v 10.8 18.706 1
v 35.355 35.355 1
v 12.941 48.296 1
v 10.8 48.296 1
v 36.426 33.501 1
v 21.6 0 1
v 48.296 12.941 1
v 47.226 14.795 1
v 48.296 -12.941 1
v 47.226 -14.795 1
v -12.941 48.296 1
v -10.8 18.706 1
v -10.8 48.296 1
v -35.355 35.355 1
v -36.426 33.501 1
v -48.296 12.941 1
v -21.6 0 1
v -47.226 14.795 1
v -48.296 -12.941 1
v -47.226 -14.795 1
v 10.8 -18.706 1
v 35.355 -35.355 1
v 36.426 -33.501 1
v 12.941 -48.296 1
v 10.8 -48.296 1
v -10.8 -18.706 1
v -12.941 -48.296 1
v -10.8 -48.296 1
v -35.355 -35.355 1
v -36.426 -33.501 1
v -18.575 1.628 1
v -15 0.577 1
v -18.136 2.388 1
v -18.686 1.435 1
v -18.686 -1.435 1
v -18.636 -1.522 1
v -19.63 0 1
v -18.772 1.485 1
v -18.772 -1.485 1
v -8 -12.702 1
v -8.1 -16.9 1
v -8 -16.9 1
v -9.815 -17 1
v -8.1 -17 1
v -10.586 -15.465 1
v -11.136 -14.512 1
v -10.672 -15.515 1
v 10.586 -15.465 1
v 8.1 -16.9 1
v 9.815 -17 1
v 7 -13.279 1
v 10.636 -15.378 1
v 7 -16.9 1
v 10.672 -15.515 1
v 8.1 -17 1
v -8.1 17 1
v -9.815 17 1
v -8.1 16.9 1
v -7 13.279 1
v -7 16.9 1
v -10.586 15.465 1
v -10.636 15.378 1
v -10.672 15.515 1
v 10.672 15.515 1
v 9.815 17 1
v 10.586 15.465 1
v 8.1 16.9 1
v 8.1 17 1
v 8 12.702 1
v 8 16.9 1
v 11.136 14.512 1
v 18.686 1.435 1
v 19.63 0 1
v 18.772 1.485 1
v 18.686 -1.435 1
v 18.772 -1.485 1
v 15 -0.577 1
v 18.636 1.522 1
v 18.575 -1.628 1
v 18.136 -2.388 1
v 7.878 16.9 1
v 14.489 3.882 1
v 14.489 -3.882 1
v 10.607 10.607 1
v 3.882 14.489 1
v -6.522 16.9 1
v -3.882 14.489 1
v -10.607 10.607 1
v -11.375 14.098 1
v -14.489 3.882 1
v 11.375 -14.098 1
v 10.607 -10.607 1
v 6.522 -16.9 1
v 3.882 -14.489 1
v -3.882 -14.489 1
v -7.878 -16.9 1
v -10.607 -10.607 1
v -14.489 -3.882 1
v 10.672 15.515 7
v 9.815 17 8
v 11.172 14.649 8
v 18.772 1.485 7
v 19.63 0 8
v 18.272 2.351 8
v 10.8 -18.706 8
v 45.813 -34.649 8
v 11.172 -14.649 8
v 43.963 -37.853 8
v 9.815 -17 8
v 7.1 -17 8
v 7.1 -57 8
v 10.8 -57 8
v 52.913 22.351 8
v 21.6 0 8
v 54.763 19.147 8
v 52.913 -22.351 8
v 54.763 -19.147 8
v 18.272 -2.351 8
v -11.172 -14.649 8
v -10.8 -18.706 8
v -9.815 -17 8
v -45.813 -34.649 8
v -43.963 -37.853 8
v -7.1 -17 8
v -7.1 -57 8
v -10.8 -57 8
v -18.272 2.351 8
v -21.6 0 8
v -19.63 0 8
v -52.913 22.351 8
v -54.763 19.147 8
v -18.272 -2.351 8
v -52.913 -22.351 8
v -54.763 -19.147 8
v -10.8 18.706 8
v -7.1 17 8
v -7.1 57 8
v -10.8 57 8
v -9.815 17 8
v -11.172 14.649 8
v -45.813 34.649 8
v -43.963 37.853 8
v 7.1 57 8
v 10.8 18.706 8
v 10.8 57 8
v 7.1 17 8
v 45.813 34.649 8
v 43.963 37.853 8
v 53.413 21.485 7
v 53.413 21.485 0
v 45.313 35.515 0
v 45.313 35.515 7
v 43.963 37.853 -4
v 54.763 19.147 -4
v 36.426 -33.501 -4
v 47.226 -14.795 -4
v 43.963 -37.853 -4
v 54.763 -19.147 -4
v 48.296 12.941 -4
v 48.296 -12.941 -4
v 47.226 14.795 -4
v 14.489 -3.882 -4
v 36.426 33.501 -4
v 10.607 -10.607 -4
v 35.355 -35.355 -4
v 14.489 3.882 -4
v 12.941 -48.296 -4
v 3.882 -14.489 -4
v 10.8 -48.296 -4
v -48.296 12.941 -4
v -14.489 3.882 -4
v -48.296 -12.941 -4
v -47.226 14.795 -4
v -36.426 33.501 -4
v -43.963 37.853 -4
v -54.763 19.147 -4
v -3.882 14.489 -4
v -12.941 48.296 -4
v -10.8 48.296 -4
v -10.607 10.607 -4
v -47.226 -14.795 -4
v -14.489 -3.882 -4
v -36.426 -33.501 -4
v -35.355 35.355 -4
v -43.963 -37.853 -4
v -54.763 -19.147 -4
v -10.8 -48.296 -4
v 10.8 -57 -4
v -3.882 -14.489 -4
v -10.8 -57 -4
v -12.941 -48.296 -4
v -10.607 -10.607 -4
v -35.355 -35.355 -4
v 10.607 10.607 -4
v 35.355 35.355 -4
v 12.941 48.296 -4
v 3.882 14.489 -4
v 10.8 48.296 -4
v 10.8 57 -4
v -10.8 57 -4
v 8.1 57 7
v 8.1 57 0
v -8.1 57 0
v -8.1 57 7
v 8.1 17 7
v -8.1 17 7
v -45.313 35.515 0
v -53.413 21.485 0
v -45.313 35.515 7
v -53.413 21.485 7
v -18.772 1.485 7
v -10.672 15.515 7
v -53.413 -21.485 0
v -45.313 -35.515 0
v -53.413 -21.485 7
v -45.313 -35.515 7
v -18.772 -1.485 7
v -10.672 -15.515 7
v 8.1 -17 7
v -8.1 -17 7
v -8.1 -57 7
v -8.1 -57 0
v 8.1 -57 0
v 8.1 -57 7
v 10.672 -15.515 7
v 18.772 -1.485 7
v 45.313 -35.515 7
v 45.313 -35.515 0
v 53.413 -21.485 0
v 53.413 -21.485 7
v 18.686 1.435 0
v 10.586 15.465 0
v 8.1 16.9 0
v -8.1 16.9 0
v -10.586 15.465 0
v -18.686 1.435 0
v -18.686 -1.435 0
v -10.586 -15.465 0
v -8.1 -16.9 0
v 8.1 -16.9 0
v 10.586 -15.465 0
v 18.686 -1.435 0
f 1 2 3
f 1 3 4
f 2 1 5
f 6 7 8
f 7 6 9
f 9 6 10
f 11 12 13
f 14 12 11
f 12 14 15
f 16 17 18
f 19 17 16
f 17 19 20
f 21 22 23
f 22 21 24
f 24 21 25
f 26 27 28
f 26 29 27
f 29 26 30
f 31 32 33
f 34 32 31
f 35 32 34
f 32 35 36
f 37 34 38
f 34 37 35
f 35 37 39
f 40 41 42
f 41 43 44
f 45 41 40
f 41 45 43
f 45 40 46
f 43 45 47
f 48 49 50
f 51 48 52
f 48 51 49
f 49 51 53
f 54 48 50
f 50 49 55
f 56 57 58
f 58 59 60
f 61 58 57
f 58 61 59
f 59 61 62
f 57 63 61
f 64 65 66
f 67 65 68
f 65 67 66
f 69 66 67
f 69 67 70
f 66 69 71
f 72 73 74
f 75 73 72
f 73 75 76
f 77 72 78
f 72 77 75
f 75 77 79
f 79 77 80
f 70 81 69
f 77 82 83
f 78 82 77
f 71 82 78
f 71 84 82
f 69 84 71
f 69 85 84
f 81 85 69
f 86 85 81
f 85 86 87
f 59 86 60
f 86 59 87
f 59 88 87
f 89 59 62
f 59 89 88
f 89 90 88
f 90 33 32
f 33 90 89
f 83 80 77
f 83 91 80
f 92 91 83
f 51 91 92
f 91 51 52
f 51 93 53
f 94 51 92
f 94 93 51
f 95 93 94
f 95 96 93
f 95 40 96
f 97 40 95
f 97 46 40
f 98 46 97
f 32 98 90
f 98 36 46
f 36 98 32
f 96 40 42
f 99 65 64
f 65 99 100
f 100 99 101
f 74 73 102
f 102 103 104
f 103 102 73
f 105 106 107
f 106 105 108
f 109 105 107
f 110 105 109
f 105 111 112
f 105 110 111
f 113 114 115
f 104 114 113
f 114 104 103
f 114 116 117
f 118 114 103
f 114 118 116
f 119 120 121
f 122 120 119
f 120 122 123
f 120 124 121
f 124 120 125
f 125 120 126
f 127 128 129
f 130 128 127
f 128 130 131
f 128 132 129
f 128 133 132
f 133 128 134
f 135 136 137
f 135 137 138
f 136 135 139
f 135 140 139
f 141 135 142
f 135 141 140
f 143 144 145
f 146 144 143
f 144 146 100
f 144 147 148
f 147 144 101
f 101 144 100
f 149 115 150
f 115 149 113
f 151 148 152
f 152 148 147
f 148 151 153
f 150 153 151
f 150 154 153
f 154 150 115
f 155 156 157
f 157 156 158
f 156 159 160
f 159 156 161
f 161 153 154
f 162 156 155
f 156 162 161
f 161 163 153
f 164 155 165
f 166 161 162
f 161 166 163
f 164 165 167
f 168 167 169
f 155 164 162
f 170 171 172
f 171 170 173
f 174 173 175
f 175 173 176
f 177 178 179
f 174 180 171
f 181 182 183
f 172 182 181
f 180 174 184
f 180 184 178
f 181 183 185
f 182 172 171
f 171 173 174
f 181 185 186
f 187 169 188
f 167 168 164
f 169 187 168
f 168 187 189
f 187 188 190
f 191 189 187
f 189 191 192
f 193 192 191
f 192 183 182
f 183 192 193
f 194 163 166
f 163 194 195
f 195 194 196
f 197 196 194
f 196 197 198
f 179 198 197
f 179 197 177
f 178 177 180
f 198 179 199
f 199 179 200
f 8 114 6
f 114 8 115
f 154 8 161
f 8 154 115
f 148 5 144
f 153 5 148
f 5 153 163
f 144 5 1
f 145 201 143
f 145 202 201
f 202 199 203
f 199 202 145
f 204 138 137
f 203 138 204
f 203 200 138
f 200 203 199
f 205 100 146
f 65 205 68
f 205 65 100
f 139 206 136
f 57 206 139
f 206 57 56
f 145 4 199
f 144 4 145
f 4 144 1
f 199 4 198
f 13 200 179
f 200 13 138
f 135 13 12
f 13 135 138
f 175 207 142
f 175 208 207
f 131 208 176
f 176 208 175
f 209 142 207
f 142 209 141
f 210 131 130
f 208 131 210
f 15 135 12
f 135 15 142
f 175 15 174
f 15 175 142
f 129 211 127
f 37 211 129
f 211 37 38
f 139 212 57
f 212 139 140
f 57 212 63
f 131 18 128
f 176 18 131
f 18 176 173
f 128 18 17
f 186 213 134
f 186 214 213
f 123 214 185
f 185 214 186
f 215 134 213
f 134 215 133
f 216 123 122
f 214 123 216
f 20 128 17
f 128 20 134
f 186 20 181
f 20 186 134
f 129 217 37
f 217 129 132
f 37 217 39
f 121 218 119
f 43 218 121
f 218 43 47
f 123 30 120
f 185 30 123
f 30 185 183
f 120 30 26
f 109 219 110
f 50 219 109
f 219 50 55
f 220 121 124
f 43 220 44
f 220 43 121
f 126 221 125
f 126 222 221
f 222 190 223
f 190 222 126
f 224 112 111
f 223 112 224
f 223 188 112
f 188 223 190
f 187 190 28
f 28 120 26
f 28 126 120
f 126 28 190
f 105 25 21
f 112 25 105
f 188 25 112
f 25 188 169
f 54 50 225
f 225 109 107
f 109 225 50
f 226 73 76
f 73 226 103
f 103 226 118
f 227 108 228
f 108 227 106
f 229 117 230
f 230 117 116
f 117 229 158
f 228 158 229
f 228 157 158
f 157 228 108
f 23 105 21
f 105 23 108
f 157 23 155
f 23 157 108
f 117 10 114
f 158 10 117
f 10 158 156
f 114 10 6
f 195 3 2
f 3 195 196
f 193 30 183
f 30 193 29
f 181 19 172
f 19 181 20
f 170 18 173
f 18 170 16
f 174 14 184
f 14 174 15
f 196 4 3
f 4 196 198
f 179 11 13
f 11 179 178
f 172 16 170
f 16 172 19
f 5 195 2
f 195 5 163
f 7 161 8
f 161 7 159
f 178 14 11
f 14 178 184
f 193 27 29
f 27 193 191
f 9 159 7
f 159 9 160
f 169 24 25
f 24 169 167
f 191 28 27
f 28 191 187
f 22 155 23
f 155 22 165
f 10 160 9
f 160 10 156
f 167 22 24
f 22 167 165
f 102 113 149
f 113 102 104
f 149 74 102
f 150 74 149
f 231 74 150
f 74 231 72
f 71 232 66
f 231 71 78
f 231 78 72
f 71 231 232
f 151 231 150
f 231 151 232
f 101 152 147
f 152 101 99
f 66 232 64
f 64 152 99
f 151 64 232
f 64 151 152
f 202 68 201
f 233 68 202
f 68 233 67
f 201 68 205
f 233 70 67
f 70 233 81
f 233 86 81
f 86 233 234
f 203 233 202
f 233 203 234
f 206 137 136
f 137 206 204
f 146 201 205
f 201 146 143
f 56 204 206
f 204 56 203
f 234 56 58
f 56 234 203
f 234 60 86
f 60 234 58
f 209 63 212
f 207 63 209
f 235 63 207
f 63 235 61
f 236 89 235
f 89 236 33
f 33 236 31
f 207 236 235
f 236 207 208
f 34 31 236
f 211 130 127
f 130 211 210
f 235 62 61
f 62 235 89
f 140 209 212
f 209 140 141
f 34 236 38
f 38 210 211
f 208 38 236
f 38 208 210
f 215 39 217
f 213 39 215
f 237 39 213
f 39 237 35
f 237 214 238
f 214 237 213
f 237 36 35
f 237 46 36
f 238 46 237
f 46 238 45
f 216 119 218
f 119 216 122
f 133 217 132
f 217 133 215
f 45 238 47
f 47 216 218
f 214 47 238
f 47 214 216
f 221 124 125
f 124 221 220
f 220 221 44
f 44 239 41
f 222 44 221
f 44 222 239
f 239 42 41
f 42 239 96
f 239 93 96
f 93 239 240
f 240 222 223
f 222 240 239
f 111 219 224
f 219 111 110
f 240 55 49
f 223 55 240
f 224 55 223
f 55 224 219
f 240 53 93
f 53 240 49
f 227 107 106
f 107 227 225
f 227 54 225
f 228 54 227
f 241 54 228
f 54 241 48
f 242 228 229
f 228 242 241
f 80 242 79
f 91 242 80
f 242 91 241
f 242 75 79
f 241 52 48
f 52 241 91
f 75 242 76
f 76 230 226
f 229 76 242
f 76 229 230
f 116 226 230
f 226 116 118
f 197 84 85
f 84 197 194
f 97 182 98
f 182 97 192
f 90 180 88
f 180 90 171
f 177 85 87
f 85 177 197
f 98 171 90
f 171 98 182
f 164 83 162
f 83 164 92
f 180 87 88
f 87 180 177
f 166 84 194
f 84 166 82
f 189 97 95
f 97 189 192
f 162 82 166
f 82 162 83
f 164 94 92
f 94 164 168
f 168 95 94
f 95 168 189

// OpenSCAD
w=16.2; // Al stripe width
t=1.0; // Al thickness
t2=7; // Profile thickness
bt=4.0; // Bottom thickness
ww=2.7; // wall width
tt=1.0; // top overhang
ml=40; // section length

ofs=17;
dc=100;
dci=30;
// ofs=-w*sin(60);

module outer(l)
{
translate([0, -w/2-ww, -bt]) cube([l, w+ww*2, bt+t2+tt]);
}

module inner(l, ofs)
{
translate([ofs,0,0]) hull()
{
  translate([-0.1, -w/2, 0]) cube([l+0.2, w, t2]);
  translate([-0.1, -w/2+tt+1, 0]) cube([l+0.2, w-tt*2-2, t2+tt+1]);
}
}

rotate([0,0,30])difference()
{
union()
{
translate([0,0,-bt])rotate([0,0,15])cylinder(h=5, d=dc, $fn=12);
for (i = [0 : 5]) rotate([0,0,60*i]) translate([ofs,0,0]) outer(ml);
}
for (i = [0 : 5]) rotate([0,0,60*i]) translate([0,0,0]) inner(ml, ofs);
translate([0,0,-bt-1])rotate([0,0,15])cylinder(h=5+2, d=dci, $fn=12);
for (i = [0 : 5]) rotate([0,0,60*i+30]) translate([-7,0,t]) cube([15, 100, tt+2]);
}
